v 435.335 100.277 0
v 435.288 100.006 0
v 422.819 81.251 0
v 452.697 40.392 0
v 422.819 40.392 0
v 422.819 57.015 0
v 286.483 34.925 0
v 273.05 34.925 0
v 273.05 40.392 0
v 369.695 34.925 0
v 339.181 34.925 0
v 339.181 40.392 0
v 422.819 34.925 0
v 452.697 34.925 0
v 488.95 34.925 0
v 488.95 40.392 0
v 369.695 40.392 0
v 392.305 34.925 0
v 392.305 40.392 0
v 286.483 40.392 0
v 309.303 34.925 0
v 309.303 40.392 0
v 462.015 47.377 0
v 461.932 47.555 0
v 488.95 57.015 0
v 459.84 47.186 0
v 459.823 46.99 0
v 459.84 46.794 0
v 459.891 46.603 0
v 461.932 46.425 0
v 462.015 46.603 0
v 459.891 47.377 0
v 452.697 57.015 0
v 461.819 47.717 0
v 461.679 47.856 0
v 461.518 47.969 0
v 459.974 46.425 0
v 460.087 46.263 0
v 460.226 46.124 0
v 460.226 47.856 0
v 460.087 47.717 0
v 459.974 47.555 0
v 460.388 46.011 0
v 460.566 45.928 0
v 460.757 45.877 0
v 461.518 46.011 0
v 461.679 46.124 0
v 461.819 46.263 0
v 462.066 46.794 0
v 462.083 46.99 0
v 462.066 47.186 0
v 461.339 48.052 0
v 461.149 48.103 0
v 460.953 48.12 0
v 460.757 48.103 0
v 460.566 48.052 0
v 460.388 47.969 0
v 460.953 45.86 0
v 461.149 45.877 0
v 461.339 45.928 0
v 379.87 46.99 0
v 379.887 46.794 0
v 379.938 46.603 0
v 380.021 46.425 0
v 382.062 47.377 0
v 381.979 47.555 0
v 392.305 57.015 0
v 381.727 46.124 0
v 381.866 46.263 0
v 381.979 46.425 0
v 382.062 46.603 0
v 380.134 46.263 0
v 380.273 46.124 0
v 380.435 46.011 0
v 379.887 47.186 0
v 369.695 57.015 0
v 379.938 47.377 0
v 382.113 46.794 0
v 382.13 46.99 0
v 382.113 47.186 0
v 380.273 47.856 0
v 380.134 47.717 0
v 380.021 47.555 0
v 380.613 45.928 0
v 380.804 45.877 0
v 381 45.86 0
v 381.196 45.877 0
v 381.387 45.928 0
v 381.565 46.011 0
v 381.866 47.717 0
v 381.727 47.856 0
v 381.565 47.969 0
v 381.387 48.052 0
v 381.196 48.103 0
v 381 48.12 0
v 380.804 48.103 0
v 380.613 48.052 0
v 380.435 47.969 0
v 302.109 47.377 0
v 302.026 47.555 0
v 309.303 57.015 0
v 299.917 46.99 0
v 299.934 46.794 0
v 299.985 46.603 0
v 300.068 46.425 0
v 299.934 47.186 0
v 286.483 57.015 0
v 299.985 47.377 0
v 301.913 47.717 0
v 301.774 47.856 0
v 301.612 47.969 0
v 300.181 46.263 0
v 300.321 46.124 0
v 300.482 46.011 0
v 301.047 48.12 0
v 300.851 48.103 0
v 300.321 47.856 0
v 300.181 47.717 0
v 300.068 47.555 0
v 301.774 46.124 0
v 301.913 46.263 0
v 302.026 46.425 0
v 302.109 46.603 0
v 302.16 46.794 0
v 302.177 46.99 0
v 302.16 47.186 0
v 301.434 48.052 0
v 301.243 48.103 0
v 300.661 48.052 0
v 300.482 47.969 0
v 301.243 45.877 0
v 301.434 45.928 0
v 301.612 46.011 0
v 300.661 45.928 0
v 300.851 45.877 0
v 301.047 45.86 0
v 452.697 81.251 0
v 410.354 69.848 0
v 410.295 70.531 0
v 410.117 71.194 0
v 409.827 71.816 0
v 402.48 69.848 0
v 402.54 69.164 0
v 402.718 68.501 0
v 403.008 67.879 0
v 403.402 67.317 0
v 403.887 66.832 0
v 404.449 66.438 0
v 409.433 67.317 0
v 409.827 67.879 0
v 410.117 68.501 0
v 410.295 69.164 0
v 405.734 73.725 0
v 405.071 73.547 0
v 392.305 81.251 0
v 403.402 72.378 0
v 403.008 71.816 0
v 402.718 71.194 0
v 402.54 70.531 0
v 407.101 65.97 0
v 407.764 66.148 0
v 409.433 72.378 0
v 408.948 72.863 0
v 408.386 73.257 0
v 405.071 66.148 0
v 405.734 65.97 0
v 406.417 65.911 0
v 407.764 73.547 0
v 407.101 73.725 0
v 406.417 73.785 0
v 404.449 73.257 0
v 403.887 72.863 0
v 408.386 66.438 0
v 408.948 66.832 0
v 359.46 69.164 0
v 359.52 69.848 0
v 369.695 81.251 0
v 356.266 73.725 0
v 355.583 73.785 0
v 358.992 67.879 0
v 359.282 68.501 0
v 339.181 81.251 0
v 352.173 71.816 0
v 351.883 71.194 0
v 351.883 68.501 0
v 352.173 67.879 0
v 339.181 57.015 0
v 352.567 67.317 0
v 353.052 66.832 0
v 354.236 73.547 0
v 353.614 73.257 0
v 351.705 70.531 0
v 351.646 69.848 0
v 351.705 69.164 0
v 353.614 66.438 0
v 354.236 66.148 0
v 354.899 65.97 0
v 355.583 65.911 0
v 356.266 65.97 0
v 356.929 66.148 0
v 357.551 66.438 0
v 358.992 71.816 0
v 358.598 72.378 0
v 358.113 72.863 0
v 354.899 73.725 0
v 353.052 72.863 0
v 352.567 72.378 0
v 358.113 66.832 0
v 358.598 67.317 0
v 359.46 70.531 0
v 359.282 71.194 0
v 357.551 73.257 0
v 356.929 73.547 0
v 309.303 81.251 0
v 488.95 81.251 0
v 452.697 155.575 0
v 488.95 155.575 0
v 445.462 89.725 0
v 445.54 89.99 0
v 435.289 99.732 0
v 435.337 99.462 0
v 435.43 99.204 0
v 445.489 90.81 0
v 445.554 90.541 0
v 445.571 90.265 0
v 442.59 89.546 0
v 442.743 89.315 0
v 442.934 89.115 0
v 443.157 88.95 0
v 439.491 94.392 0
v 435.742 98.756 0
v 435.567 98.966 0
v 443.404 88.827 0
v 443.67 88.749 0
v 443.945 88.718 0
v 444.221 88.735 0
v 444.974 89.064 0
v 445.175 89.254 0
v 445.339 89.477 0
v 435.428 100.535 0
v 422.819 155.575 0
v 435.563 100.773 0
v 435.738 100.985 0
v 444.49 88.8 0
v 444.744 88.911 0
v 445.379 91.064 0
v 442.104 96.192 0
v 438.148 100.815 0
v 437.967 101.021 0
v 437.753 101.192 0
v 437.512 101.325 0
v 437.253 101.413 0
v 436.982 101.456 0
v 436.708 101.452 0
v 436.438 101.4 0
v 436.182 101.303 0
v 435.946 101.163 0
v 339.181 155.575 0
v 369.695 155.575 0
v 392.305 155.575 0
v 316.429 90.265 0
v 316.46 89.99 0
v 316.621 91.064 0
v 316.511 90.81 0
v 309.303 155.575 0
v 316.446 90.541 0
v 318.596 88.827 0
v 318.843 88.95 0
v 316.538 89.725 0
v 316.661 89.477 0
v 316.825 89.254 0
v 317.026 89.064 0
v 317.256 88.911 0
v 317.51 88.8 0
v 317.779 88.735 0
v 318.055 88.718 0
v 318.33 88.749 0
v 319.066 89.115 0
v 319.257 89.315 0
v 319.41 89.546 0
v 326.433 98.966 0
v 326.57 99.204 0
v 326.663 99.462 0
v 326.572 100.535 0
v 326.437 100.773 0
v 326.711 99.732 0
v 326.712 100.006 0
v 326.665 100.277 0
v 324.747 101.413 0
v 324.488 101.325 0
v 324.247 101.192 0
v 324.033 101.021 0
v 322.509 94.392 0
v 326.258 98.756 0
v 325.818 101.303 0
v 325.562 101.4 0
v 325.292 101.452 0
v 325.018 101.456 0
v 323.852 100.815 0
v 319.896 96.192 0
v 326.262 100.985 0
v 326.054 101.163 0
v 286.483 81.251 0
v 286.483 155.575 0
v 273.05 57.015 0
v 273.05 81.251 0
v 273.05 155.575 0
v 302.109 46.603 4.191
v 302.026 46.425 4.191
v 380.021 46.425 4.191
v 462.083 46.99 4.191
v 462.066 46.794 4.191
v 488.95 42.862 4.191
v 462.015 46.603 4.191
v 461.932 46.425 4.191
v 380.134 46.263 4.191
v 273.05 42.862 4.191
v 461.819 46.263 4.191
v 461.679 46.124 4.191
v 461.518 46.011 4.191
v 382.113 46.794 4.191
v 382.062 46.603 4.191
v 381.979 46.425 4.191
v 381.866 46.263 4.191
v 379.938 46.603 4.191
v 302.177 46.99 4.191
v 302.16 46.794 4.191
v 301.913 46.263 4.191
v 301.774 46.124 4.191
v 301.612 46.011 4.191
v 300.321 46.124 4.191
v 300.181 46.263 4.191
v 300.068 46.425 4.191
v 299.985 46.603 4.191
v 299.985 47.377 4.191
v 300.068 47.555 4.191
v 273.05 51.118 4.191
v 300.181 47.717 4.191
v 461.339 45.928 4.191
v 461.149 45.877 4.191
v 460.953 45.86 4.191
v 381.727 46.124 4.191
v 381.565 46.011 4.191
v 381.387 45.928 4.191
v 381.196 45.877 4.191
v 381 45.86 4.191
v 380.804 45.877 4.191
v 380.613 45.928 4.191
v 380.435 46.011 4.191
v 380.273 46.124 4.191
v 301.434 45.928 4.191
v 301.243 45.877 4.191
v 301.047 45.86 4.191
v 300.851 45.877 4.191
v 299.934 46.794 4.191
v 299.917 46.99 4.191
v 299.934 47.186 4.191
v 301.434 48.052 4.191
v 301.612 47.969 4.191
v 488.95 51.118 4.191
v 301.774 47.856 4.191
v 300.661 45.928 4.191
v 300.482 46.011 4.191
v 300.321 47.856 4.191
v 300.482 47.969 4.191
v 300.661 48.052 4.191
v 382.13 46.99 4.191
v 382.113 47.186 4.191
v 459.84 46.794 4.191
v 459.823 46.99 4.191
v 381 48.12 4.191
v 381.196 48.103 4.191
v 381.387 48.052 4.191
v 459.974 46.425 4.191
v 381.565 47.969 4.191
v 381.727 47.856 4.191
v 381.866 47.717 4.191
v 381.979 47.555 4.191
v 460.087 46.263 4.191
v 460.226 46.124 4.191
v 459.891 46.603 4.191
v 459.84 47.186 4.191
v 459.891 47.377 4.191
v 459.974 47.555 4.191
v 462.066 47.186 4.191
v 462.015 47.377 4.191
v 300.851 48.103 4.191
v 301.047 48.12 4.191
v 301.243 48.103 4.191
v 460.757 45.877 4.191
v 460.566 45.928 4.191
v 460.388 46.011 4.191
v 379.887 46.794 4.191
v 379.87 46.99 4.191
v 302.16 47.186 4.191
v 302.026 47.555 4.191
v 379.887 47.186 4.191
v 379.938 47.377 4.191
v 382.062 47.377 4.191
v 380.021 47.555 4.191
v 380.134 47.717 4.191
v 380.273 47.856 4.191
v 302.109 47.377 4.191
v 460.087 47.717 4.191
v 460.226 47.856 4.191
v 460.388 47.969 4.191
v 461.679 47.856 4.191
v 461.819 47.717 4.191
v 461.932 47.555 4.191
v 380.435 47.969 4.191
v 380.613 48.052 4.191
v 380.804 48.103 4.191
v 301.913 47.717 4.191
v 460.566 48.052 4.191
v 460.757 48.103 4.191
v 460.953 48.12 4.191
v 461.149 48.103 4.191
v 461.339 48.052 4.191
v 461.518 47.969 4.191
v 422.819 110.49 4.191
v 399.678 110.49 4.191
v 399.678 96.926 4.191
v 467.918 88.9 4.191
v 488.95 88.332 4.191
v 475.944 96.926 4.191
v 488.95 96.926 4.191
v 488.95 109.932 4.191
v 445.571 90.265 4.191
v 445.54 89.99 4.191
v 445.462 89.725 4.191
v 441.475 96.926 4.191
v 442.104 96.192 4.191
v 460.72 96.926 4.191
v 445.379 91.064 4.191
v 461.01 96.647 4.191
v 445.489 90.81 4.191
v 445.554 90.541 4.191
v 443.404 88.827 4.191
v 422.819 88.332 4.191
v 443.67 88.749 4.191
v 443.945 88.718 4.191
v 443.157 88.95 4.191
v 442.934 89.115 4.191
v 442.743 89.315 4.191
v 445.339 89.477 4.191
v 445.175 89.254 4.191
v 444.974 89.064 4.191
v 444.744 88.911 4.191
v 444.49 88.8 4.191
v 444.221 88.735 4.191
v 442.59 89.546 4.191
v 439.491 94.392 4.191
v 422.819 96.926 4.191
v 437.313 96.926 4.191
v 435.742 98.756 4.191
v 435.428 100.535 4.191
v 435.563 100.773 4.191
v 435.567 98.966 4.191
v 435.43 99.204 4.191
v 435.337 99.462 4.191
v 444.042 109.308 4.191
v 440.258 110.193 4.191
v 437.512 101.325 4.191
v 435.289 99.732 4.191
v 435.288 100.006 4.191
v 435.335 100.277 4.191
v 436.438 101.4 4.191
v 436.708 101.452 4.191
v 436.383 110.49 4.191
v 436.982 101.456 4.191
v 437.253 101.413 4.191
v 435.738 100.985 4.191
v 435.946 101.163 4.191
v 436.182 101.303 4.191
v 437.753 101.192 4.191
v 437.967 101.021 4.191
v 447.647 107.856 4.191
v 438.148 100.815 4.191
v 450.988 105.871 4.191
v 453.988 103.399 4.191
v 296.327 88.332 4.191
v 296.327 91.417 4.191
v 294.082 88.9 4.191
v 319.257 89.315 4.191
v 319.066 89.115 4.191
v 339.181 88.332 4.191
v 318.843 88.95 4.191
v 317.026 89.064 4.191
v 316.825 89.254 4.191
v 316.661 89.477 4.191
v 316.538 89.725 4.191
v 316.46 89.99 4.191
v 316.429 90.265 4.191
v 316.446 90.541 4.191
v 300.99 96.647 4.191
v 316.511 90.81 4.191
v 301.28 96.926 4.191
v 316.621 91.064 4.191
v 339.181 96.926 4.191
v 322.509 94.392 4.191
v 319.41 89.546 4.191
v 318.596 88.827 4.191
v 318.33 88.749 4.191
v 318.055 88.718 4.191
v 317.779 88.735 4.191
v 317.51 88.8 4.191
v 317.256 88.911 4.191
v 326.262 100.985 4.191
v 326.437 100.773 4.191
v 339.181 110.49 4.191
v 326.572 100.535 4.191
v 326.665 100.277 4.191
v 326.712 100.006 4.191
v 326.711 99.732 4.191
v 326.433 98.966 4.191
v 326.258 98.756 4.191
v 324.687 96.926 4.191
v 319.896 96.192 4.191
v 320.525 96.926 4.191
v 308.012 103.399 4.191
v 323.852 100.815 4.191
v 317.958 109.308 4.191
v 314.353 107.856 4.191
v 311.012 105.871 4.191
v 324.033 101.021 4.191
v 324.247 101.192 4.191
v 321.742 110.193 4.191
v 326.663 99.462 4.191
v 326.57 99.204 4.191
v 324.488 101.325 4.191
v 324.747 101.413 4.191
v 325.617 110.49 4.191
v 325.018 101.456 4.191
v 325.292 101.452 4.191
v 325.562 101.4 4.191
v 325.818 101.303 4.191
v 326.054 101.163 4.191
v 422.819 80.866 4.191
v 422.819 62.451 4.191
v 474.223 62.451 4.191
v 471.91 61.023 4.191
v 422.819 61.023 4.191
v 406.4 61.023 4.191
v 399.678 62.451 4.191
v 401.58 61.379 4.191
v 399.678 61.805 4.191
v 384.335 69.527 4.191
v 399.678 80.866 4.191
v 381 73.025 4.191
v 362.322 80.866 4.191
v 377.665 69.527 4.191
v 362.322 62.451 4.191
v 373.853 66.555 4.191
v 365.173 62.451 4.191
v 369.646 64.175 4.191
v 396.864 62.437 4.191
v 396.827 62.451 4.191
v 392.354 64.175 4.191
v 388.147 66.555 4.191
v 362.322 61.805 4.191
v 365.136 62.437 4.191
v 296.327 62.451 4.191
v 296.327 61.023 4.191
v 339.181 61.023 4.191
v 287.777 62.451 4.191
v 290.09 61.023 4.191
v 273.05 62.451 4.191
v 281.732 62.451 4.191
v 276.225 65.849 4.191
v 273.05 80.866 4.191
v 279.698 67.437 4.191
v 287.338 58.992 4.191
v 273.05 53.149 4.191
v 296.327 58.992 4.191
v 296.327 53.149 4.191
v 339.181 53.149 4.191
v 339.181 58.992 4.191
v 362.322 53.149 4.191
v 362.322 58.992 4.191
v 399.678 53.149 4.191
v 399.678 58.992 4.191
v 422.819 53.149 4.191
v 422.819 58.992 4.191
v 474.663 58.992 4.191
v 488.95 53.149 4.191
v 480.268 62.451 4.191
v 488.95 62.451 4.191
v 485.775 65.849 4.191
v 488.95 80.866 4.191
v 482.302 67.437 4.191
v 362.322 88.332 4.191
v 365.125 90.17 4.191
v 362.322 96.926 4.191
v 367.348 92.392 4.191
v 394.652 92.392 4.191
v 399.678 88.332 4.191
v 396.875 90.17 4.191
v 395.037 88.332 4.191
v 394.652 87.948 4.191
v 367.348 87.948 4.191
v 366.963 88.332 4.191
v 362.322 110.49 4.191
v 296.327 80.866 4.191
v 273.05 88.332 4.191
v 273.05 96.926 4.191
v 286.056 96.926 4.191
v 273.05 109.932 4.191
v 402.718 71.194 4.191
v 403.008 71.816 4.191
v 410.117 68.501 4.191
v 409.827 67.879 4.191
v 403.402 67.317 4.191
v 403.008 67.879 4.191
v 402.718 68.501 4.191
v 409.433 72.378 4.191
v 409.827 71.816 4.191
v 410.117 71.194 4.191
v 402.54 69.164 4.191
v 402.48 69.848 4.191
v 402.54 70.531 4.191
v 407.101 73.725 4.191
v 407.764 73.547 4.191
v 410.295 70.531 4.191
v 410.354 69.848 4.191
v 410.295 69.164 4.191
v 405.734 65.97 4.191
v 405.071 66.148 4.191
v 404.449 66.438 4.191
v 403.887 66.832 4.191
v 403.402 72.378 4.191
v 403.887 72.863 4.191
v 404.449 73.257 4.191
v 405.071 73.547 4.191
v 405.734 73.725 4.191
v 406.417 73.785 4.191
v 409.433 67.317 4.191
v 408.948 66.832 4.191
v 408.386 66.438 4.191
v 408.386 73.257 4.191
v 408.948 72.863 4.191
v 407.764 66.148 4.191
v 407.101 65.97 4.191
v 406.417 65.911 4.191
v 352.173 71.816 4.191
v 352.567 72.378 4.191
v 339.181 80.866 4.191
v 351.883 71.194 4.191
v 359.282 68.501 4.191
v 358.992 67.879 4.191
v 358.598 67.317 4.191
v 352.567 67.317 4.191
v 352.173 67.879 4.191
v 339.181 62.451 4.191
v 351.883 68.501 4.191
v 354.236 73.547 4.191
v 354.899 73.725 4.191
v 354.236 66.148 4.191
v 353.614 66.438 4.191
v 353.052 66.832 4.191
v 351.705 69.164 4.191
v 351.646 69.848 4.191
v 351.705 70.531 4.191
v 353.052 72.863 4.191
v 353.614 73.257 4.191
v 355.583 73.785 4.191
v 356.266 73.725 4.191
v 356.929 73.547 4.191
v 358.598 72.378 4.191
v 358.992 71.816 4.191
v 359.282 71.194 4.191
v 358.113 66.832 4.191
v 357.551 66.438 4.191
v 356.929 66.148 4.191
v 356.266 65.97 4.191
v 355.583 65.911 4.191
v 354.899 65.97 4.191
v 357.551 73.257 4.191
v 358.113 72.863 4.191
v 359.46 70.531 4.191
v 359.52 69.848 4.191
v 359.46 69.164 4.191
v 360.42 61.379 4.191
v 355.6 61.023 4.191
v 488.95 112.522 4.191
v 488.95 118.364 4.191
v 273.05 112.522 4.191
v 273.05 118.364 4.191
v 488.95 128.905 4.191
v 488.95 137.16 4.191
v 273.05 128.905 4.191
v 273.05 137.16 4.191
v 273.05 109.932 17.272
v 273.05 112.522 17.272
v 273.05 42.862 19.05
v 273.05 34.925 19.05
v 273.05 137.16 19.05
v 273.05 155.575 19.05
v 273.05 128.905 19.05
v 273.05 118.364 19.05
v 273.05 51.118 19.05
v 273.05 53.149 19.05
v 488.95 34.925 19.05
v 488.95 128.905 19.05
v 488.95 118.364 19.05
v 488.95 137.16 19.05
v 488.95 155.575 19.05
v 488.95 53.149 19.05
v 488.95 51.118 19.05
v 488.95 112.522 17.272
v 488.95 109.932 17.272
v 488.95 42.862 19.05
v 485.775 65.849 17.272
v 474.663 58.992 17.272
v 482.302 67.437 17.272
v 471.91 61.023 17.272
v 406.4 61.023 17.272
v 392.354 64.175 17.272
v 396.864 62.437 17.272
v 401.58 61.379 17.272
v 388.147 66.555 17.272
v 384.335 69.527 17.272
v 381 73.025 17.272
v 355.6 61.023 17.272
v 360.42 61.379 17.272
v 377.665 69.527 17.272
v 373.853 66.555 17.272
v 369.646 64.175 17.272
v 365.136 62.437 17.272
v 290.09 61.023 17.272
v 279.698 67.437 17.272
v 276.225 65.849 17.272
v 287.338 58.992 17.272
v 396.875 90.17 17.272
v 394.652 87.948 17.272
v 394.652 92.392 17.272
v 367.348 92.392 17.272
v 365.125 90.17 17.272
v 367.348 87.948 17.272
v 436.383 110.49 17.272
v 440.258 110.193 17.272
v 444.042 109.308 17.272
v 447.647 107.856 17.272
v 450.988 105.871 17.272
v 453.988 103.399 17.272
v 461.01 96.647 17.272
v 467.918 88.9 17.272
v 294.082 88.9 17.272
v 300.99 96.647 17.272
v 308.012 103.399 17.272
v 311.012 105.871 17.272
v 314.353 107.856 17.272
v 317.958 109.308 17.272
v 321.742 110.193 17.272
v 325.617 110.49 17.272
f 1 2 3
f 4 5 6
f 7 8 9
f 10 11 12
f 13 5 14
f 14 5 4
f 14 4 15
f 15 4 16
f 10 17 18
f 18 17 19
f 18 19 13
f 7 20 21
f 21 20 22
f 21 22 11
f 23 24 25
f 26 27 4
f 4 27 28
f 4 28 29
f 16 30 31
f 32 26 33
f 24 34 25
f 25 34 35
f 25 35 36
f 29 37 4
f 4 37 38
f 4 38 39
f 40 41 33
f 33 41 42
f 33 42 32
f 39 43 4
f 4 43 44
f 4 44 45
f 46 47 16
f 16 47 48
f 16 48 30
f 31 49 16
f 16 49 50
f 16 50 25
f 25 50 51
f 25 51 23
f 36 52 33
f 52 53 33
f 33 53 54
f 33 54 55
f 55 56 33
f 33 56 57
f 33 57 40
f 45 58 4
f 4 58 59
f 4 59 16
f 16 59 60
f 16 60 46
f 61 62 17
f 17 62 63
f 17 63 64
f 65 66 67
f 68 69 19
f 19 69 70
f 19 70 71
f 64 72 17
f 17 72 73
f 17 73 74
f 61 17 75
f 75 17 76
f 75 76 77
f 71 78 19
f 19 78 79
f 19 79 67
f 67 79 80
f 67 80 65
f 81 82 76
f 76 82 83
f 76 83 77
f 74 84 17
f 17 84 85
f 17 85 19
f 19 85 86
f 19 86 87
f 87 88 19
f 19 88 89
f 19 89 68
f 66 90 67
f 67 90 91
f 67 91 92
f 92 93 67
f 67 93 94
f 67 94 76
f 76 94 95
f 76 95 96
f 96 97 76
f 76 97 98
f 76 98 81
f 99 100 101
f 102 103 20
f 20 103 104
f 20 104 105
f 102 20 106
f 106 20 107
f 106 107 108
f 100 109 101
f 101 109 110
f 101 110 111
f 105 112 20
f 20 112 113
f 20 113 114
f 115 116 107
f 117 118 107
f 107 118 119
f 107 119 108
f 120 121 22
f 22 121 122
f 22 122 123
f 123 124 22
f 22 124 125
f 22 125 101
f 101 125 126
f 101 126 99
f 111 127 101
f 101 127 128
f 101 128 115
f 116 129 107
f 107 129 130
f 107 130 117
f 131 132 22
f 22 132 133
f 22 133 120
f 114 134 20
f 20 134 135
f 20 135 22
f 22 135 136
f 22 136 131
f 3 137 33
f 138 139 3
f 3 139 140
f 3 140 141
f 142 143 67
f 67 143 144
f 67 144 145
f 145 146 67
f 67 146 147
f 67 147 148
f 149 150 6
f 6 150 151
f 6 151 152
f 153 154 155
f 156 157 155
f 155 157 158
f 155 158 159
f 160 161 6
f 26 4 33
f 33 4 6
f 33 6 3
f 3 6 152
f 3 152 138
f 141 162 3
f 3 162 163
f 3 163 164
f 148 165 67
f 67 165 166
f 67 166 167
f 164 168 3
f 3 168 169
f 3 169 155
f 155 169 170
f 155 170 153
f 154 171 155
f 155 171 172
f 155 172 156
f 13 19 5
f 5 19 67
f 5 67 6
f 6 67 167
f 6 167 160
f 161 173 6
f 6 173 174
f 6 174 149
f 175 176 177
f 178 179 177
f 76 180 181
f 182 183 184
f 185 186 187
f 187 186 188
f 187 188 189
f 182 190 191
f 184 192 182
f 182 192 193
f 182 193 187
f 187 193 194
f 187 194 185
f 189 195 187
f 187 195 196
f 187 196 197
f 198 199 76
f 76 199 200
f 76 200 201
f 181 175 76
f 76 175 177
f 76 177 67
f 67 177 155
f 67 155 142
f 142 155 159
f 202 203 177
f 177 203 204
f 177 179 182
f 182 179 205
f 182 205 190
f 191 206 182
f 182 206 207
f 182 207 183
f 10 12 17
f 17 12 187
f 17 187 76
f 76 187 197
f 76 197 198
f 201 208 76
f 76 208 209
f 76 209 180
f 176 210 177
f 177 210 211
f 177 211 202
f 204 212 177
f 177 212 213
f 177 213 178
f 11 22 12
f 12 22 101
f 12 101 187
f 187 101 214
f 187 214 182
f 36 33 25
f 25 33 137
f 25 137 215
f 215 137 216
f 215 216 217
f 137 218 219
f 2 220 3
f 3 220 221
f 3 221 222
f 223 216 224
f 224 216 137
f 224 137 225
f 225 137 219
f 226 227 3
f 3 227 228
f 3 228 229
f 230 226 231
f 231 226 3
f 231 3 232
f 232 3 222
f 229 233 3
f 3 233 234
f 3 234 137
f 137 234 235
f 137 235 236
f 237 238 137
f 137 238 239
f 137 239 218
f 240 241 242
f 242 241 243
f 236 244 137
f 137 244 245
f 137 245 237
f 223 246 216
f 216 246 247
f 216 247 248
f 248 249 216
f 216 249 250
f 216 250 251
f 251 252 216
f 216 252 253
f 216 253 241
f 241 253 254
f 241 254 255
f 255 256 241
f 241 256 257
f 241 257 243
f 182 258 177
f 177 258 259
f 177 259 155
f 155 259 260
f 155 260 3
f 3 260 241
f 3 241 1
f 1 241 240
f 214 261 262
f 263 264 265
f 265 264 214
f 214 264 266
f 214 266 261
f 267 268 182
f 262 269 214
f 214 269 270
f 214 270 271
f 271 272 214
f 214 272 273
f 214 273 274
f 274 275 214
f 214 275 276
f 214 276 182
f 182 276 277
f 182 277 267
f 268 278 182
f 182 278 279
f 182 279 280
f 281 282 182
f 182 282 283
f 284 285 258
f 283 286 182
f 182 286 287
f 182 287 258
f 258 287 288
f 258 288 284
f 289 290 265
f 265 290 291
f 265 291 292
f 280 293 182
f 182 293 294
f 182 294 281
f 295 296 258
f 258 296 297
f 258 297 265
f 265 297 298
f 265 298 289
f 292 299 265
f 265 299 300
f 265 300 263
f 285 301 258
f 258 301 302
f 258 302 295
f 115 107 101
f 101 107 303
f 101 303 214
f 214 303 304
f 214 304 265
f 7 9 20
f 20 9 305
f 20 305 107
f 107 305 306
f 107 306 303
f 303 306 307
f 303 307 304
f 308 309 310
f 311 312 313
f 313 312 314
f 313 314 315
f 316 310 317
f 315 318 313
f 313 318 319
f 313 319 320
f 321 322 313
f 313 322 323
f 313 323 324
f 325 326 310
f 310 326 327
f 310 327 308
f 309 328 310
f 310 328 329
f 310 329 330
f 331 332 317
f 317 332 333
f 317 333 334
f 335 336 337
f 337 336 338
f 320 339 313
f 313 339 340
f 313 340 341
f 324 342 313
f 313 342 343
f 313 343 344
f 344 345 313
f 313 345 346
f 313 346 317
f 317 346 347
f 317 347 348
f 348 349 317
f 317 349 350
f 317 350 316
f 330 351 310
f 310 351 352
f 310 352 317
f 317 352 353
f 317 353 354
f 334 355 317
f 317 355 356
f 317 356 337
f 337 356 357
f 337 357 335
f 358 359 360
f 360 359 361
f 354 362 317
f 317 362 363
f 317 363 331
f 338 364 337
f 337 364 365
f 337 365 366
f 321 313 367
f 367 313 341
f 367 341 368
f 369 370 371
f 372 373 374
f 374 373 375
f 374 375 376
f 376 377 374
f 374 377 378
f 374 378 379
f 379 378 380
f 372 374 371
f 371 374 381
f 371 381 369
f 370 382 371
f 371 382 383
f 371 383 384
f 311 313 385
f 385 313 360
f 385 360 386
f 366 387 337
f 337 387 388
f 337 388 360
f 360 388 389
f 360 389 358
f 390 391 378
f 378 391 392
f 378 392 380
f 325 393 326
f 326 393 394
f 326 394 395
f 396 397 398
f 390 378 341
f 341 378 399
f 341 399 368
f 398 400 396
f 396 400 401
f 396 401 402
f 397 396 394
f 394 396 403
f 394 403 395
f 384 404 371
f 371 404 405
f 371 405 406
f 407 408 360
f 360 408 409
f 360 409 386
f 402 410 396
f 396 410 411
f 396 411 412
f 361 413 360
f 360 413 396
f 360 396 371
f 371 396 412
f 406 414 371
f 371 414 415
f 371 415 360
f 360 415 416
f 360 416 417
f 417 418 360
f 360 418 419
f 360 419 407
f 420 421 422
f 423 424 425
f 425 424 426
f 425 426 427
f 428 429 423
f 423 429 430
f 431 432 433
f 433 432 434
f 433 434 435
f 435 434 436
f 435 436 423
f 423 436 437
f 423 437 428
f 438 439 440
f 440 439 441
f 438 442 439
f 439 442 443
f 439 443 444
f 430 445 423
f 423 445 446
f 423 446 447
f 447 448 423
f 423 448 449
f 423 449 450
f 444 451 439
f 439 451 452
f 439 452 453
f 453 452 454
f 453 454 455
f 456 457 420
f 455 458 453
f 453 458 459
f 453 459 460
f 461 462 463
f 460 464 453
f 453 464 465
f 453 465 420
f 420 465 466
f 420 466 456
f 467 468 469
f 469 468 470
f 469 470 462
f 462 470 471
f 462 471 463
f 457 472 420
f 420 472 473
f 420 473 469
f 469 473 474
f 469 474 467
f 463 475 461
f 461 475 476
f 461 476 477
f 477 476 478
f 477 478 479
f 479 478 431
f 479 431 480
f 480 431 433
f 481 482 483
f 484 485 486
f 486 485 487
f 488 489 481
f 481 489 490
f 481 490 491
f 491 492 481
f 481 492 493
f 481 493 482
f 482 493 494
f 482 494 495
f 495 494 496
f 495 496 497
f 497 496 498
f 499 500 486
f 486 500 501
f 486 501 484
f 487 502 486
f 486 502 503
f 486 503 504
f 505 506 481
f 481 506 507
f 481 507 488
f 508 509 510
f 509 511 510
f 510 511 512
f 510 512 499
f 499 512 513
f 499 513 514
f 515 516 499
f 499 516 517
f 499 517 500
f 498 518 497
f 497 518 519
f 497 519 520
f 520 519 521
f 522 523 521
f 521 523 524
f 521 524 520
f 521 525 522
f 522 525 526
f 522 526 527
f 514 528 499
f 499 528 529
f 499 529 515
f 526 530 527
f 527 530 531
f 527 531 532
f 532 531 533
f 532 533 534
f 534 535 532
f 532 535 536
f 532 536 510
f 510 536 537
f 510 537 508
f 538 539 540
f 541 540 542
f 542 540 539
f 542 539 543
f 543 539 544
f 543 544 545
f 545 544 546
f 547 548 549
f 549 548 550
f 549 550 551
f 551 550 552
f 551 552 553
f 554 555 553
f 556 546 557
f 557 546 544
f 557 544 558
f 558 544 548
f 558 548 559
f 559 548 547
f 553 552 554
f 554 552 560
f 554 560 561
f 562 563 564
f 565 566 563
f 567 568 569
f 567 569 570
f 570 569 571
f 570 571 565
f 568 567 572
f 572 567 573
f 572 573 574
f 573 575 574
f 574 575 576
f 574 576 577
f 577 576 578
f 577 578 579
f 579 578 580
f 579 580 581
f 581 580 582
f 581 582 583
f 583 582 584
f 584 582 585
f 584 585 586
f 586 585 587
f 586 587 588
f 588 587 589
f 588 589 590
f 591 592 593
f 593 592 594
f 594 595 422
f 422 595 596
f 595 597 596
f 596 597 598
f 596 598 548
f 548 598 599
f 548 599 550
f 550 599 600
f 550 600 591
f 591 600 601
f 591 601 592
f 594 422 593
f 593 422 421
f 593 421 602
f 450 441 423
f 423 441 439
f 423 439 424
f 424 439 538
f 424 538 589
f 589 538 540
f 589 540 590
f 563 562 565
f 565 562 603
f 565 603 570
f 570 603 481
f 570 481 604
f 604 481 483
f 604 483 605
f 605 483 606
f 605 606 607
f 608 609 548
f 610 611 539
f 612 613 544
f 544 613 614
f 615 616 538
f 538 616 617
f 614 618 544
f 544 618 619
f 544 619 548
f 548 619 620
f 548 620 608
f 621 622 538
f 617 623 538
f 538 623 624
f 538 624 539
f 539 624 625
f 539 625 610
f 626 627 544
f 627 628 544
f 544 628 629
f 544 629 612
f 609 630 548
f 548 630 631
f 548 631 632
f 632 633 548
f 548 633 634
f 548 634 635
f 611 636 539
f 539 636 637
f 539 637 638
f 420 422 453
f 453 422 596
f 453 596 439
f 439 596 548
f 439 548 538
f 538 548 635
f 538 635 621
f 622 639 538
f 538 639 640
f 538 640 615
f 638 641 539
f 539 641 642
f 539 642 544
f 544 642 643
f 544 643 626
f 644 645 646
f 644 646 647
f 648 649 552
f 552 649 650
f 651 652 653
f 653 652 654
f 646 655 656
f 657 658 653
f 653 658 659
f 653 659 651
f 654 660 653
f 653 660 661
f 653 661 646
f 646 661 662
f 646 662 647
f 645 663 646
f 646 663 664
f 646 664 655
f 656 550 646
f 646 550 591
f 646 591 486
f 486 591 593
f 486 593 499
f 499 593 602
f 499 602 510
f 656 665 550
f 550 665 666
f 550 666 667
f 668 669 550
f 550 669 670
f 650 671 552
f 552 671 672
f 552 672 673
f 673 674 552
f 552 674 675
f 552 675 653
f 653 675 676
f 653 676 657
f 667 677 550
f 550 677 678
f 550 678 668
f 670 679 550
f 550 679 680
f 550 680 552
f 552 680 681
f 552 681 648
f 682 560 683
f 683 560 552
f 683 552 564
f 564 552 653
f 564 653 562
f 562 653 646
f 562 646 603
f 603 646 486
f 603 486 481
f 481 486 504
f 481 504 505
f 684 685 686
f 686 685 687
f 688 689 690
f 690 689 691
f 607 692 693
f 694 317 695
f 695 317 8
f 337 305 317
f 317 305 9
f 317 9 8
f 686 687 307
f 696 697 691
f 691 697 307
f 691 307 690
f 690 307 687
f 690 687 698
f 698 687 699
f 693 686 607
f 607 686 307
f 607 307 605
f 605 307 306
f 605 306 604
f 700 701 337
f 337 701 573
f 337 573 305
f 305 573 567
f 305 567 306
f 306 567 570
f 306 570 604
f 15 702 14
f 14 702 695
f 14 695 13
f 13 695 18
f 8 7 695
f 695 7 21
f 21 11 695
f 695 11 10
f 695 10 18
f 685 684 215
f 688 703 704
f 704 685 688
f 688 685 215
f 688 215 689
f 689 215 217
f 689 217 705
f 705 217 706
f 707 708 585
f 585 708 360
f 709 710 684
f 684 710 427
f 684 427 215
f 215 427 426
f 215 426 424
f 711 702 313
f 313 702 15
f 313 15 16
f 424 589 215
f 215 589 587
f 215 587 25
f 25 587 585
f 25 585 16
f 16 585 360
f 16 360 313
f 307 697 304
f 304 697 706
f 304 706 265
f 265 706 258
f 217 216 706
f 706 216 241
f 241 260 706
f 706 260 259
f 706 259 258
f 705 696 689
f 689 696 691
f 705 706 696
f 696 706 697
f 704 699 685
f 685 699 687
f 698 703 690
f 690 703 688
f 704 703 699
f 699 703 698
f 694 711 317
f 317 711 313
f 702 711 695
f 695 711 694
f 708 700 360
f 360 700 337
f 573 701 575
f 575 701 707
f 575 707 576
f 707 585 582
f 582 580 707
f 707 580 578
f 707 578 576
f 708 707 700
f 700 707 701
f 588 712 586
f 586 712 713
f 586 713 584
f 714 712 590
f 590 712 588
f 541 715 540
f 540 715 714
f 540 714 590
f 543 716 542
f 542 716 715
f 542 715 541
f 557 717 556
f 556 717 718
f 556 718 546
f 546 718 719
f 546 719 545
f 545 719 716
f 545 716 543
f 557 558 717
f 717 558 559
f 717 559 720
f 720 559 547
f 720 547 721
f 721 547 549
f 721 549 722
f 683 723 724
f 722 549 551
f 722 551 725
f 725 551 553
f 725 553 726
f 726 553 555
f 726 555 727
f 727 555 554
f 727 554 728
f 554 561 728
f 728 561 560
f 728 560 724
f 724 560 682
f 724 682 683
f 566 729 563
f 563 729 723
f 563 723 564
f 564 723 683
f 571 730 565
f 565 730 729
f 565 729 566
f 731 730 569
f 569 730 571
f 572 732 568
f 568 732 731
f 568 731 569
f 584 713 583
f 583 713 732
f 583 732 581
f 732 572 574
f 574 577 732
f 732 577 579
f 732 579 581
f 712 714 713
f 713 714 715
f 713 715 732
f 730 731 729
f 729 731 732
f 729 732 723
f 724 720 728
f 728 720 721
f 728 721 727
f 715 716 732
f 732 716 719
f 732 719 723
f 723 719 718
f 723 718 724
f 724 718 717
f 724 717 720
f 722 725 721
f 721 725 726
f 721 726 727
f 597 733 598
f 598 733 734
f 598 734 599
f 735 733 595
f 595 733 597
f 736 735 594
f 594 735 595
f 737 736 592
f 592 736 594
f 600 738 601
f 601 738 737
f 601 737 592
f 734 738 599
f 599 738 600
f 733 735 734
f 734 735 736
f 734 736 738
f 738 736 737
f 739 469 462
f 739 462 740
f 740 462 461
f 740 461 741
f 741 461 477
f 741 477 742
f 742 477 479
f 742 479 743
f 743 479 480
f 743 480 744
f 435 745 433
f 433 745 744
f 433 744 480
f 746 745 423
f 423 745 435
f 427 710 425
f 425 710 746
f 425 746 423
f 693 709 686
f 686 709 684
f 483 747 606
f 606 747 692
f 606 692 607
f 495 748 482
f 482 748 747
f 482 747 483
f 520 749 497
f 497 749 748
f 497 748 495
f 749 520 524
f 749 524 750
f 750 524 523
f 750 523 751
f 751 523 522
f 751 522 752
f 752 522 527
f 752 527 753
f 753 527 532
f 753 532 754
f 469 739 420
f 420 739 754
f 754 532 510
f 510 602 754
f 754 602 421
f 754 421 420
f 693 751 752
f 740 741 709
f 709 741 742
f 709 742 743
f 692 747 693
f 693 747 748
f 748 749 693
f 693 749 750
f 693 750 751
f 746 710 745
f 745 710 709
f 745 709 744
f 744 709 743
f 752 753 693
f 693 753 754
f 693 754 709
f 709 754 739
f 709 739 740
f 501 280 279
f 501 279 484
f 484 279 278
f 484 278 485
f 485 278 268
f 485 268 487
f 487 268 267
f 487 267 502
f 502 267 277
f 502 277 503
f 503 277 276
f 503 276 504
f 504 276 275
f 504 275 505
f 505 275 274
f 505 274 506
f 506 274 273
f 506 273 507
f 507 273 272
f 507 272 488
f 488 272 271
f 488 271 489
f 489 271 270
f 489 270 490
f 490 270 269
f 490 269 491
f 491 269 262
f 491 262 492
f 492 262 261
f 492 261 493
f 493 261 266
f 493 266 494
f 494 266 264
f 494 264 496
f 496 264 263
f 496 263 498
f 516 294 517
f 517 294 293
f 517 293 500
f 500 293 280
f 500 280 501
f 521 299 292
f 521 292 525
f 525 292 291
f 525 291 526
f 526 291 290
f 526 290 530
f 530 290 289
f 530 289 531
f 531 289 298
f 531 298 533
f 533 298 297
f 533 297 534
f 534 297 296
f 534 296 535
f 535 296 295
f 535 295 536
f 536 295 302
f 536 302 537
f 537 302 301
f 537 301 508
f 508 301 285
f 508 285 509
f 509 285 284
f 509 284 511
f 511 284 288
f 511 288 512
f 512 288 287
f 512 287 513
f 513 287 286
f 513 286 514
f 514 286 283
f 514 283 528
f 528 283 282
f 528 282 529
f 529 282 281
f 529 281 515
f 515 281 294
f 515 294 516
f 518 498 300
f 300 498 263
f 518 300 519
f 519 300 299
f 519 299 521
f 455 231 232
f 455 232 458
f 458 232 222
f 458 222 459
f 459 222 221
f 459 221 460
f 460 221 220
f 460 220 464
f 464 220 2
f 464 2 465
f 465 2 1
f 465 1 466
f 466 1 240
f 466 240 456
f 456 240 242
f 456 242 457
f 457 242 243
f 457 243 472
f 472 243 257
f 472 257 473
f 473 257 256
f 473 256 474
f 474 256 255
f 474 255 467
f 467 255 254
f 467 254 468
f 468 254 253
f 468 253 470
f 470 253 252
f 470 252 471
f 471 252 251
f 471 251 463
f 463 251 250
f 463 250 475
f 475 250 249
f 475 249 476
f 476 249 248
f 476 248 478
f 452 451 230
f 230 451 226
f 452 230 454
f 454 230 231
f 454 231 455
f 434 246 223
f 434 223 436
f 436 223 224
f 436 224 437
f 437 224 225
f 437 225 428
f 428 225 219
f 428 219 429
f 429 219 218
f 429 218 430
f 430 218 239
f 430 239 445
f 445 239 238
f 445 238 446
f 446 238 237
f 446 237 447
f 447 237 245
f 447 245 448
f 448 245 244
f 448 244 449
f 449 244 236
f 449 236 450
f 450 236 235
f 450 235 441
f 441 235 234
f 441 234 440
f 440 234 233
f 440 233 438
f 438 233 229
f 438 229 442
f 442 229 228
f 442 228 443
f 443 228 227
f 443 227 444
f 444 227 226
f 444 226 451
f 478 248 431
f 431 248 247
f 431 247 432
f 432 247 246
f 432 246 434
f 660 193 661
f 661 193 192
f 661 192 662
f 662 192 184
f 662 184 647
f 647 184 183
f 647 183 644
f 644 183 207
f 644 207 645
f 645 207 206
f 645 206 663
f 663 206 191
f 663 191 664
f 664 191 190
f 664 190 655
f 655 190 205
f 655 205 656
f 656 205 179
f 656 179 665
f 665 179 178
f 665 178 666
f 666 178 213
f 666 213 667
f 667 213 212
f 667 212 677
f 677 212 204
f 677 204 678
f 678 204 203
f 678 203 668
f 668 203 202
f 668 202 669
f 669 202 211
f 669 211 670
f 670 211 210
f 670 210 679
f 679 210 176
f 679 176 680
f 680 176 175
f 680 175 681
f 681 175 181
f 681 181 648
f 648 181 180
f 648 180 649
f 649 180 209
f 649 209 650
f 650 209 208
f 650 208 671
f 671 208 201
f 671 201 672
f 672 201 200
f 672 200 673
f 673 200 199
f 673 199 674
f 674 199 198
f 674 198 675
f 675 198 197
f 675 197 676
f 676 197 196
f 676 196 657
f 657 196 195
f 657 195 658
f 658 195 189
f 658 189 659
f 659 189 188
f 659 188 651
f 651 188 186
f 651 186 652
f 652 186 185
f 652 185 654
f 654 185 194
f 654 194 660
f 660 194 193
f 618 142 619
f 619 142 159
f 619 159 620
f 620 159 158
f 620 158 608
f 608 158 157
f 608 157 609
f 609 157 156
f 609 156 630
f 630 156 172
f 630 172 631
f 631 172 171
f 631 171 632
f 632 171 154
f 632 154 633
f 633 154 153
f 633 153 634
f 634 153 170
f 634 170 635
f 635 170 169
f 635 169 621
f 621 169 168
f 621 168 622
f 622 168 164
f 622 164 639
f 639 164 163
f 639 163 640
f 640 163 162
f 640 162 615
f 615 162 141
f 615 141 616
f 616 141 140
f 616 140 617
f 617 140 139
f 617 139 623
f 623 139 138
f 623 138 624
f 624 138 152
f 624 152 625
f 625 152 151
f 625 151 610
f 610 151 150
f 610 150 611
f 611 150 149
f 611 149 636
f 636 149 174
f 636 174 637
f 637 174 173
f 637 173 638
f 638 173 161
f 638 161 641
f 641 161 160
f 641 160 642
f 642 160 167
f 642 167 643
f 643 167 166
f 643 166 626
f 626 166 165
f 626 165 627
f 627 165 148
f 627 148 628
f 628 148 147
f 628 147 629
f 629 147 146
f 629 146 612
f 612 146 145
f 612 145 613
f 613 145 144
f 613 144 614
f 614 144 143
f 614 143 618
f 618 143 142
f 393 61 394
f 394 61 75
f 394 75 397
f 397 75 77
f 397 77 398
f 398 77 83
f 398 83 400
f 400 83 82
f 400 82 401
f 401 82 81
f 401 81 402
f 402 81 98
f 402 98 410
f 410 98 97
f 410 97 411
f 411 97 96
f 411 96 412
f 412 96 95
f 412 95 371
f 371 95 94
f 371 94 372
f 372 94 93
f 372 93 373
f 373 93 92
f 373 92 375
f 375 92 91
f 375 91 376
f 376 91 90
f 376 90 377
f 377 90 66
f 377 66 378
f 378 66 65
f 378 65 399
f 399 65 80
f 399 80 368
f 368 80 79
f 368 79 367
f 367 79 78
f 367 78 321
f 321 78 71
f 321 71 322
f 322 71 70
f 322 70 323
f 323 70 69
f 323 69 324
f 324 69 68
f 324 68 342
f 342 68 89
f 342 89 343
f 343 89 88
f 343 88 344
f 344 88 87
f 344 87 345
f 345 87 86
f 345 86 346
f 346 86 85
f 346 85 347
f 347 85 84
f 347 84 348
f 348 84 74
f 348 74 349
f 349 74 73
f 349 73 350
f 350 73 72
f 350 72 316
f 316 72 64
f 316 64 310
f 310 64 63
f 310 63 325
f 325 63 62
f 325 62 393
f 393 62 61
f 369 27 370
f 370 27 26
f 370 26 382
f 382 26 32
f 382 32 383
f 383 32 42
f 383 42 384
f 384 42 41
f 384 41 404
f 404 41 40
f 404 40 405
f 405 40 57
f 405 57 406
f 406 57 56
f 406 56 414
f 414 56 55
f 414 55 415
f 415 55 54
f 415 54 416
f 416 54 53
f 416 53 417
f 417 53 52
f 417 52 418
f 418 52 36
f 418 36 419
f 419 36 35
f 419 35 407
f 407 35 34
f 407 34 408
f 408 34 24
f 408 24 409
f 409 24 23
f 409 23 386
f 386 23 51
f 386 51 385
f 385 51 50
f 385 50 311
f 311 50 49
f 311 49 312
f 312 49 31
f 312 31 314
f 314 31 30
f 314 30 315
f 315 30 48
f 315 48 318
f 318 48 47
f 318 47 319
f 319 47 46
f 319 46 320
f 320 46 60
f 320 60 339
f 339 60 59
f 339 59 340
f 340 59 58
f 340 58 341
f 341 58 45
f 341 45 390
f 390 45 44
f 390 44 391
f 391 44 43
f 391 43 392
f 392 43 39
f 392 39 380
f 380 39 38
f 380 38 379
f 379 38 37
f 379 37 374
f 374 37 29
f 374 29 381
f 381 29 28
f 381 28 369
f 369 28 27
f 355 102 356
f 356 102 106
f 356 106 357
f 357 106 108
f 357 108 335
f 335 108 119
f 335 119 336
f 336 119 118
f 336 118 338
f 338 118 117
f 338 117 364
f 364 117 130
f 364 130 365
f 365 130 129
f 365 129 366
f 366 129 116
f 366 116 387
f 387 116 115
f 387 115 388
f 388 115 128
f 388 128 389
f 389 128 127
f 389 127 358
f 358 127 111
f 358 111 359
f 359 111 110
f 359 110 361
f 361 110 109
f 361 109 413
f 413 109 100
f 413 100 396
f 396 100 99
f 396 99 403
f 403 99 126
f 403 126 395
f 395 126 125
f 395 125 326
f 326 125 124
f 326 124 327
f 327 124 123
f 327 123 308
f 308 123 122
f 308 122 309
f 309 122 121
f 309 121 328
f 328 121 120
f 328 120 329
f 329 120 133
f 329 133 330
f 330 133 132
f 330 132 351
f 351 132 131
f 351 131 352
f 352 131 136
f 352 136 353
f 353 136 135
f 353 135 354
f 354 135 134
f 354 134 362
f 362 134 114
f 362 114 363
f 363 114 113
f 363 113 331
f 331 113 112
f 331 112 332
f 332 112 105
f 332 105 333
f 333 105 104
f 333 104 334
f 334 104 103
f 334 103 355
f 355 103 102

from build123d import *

# Parameters (mm, degrees)
SKETCH3_W          = 215.9
SKETCH3_H          = 120.65
EXTRUDE1_DEPTH     = 4.191
SKETCH4_W          = 215.9
SKETCH4_H          = 18.415
SKETCH4_H_2        = 10.541
SKETCH4_H_3        = 7.9375
SKETCH4_H_4        = 2.032
EXTRUDE2_DEPTH     = 19.05
EXTRUDE3_DEPTH     = 17.272
SKETCH8_R          = 3.937
SKETCH8_R_2        = 1.1303
CUT_EXTRUDE1_DEPTH = 19.05


with BuildPart() as part:
    # Sketch3 → Extrude1 (new body)
    with BuildSketch(Plane.XY):
        with Locations((381, 95.25)):
            Rectangle(SKETCH3_W, SKETCH3_H)
    extrude(amount=EXTRUDE1_DEPTH)

    # Sketch4 → Extrude2 (add)
    with BuildSketch(Plane.XY):
        with Locations((381, 146.3675)):
            Rectangle(SKETCH4_W, SKETCH4_H)
        with Locations((381, 123.6345)):
            Rectangle(SKETCH4_W, SKETCH4_H_2)
        with Locations((381, 38.89375)):
            Rectangle(SKETCH4_W, SKETCH4_H_3)
        with Locations((381, 52.1335)):
            Rectangle(SKETCH4_W, SKETCH4_H_4)
    extrude(amount=EXTRUDE2_DEPTH)

    # Sketch5 → Extrude3 (add)
    with BuildSketch(Plane.XY):
        with BuildLine():
            Line((381, 58.9915), (287.3375, 58.9915))
            Line((287.3375, 58.9915), (276.225, 65.8495))
            Line((276.225, 65.8495), (279.698182312, 67.437))
            Line((279.698182312, 67.437), (290.090427682, 61.0235))
            Line((290.090427682, 61.0235), (355.6, 61.0235))
            ThreePointArc((355.6, 61.0235), (369.646316263, 64.174903412), (381.000000001, 73.025))
            ThreePointArc((381.000000001, 73.025), (392.353683737, 64.174903412), (406.4, 61.0235))
            Line((406.4, 61.0235), (471.909572318, 61.0235))
            Line((471.909572318, 61.0235), (482.301817688, 67.437))
            Line((482.301817688, 67.437), (485.775, 65.8495))
            Line((485.775, 65.8495), (474.6625, 58.9915))
            Line((474.6625, 58.9915), (381, 58.9915))
        make_face()
        Polygon((381, 87.9475), (367.3475, 87.9475), (365.125, 90.17), (367.3475, 92.3925), (381, 92.3925), (394.6525, 92.3925), (396.875, 90.17), (394.6525, 87.9475), align=None)
        with BuildLine():
            Line((436.382792366, 110.49), (325.617207634, 110.49))
            ThreePointArc((325.617207634, 110.49), (316.127546422, 108.650694601), (308.012246242, 103.399159848))
            Line((308.012246242, 103.399159848), (300.99, 96.647))
            Line((300.99, 96.647), (294.082258334, 88.9))
            Line((294.082258334, 88.9), (273.05, 109.932258334))
            Line((273.05, 109.932258334), (273.05, 112.522))
            Line((273.05, 112.522), (488.95, 112.522))
            Line((488.95, 112.522), (488.95, 109.932258334))
            Line((488.95, 109.932258334), (467.917741666, 88.9))
            Line((467.917741666, 88.9), (461.01, 96.647))
            Line((461.01, 96.647), (453.987753758, 103.399159848))
            ThreePointArc((453.987753758, 103.399159848), (445.872453578, 108.650694601), (436.382792366, 110.49))
        make_face()
    extrude(amount=EXTRUDE3_DEPTH)

    # Sketch8 → Cut-Extrude1 (cut)
    with BuildSketch(Plane.XY):
        with Locations((355.582497028, 69.847540117)):
            Circle(SKETCH8_R)
        with Locations((406.417502972, 69.847540117)):
            Circle(SKETCH8_R)
        with Locations((381, 46.99)):
            Circle(SKETCH8_R_2)
        with Locations((460.95285, 46.99)):
            Circle(SKETCH8_R_2)
        with Locations((301.04715, 46.99)):
            Circle(SKETCH8_R_2)
        with BuildLine():
            ThreePointArc((319.409826978, 89.545574531), (322.509420435, 94.391866743), (326.25811196, 98.755505093))
            ThreePointArc((326.25811196, 98.755505093), (326.161980776, 101.078429217), (323.852023449, 100.815152101))
            ThreePointArc((323.852023449, 100.815152101), (319.896382713, 96.191952728), (316.621455618, 91.063998107))
            ThreePointArc((316.621455618, 91.063998107), (317.25642951, 88.910600639), (319.409826978, 89.545574531))
        make_face()
        with BuildLine():
            ThreePointArc((438.147976551, 100.815152101), (442.103617287, 96.191952728), (445.378544382, 91.063998107))
            ThreePointArc((445.378544382, 91.063998107), (444.74357049, 88.910600639), (442.590173022, 89.545574531))
            ThreePointArc((442.590173022, 89.545574531), (439.490579565, 94.391866743), (435.74188804, 98.755505093))
            ThreePointArc((435.74188804, 98.755505093), (435.838019224, 101.078429217), (438.147976551, 100.815152101))
        make_face()
    extrude(amount=CUT_EXTRUDE1_DEPTH, mode=Mode.SUBTRACT)


solid = part.part
